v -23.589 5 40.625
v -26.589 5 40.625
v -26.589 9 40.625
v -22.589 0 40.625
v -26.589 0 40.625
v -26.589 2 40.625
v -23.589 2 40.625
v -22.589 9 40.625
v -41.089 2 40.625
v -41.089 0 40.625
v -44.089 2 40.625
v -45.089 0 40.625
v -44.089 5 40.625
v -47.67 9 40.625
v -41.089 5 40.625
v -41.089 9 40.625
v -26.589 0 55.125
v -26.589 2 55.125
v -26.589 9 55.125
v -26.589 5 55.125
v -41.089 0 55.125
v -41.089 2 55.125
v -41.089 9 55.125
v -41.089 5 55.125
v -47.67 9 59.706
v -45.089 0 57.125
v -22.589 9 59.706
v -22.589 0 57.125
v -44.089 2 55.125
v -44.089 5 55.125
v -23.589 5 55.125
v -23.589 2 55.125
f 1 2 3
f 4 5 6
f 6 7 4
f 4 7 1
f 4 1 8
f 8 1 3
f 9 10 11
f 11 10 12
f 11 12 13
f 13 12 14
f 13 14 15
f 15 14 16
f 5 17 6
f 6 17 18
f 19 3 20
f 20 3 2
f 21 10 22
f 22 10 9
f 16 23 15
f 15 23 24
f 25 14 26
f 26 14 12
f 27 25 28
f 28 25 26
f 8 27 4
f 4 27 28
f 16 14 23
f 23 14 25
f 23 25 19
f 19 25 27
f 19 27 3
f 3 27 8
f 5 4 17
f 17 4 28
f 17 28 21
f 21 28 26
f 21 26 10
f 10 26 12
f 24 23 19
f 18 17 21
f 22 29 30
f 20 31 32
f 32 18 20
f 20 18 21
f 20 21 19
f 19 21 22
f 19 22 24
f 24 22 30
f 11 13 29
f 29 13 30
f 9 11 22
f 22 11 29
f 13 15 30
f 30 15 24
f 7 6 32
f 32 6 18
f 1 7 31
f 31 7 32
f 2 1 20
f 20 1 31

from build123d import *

# Parameters (mm, degrees)
SKETCH1_W           = 22.5
SKETCH1_H           = 16.5
BOSS_EXTRUDE1_DEPTH = 9
SKETCH3_W           = 14.5
SKETCH3_H           = 14.5
CUT_EXTRUDE2_DEPTH  = 74.330139174
DRAFT1_ANGLE        = 16
DRAFT3_ANGLE        = 16
SKETCH9_W           = 3
SKETCH9_H           = 3
CUT_EXTRUDE3_DEPTH  = 14.5


with BuildPart() as part:
    # Sketch1 → Boss-Extrude1 (new body)
    with BuildSketch(Plane(origin=(0, 0, 0), x_dir=(1, 0, 0), z_dir=(0, 1, 0))):
        with Locations((-33.839285714, -48.875)):
            Rectangle(SKETCH1_W, SKETCH1_H)
    extrude(amount=BOSS_EXTRUDE1_DEPTH)

    # Sketch3 → Cut-Extrude2 (cut, through all)
    with BuildSketch(Plane.XZ):
        with Locations((-33.839285714, 47.875)):
            Rectangle(SKETCH3_W, SKETCH3_H)
    extrude(amount=-CUT_EXTRUDE2_DEPTH, mode=Mode.SUBTRACT)

    # Draft1
    draft1_faces = [part.faces().sort_by_distance(p)[0] for p in [
        (-45.089285714, 4.5, 48.875),
    ]]
    draft(draft1_faces, Plane(origin=(0, 0, 0), x_dir=(0, 0, -1), z_dir=(0, -1, 0)), DRAFT1_ANGLE)

    # Draft3
    draft3_faces = [part.faces().sort_by_distance(p)[0] for p in [
        (-34.496127322, 4.58135782, 57.125),
    ]]
    draft(draft3_faces, Plane(origin=(0, 0, 0), x_dir=(0, 0, -1), z_dir=(0, -1, 0)), DRAFT3_ANGLE)

    # Sketch9 → Cut-Extrude3 (cut)
    with BuildSketch(Plane(origin=(0, 0, 40.625), x_dir=(-1, 0, 0), z_dir=(0, 0, 1))):
        with Locations((25.089285714, -3.5)):
            Rectangle(SKETCH9_W, SKETCH9_H)
        with Locations((42.589285714, -3.5)):
            Rectangle(SKETCH9_W, SKETCH9_H)
    extrude(amount=CUT_EXTRUDE3_DEPTH, mode=Mode.SUBTRACT)


solid = part.part
